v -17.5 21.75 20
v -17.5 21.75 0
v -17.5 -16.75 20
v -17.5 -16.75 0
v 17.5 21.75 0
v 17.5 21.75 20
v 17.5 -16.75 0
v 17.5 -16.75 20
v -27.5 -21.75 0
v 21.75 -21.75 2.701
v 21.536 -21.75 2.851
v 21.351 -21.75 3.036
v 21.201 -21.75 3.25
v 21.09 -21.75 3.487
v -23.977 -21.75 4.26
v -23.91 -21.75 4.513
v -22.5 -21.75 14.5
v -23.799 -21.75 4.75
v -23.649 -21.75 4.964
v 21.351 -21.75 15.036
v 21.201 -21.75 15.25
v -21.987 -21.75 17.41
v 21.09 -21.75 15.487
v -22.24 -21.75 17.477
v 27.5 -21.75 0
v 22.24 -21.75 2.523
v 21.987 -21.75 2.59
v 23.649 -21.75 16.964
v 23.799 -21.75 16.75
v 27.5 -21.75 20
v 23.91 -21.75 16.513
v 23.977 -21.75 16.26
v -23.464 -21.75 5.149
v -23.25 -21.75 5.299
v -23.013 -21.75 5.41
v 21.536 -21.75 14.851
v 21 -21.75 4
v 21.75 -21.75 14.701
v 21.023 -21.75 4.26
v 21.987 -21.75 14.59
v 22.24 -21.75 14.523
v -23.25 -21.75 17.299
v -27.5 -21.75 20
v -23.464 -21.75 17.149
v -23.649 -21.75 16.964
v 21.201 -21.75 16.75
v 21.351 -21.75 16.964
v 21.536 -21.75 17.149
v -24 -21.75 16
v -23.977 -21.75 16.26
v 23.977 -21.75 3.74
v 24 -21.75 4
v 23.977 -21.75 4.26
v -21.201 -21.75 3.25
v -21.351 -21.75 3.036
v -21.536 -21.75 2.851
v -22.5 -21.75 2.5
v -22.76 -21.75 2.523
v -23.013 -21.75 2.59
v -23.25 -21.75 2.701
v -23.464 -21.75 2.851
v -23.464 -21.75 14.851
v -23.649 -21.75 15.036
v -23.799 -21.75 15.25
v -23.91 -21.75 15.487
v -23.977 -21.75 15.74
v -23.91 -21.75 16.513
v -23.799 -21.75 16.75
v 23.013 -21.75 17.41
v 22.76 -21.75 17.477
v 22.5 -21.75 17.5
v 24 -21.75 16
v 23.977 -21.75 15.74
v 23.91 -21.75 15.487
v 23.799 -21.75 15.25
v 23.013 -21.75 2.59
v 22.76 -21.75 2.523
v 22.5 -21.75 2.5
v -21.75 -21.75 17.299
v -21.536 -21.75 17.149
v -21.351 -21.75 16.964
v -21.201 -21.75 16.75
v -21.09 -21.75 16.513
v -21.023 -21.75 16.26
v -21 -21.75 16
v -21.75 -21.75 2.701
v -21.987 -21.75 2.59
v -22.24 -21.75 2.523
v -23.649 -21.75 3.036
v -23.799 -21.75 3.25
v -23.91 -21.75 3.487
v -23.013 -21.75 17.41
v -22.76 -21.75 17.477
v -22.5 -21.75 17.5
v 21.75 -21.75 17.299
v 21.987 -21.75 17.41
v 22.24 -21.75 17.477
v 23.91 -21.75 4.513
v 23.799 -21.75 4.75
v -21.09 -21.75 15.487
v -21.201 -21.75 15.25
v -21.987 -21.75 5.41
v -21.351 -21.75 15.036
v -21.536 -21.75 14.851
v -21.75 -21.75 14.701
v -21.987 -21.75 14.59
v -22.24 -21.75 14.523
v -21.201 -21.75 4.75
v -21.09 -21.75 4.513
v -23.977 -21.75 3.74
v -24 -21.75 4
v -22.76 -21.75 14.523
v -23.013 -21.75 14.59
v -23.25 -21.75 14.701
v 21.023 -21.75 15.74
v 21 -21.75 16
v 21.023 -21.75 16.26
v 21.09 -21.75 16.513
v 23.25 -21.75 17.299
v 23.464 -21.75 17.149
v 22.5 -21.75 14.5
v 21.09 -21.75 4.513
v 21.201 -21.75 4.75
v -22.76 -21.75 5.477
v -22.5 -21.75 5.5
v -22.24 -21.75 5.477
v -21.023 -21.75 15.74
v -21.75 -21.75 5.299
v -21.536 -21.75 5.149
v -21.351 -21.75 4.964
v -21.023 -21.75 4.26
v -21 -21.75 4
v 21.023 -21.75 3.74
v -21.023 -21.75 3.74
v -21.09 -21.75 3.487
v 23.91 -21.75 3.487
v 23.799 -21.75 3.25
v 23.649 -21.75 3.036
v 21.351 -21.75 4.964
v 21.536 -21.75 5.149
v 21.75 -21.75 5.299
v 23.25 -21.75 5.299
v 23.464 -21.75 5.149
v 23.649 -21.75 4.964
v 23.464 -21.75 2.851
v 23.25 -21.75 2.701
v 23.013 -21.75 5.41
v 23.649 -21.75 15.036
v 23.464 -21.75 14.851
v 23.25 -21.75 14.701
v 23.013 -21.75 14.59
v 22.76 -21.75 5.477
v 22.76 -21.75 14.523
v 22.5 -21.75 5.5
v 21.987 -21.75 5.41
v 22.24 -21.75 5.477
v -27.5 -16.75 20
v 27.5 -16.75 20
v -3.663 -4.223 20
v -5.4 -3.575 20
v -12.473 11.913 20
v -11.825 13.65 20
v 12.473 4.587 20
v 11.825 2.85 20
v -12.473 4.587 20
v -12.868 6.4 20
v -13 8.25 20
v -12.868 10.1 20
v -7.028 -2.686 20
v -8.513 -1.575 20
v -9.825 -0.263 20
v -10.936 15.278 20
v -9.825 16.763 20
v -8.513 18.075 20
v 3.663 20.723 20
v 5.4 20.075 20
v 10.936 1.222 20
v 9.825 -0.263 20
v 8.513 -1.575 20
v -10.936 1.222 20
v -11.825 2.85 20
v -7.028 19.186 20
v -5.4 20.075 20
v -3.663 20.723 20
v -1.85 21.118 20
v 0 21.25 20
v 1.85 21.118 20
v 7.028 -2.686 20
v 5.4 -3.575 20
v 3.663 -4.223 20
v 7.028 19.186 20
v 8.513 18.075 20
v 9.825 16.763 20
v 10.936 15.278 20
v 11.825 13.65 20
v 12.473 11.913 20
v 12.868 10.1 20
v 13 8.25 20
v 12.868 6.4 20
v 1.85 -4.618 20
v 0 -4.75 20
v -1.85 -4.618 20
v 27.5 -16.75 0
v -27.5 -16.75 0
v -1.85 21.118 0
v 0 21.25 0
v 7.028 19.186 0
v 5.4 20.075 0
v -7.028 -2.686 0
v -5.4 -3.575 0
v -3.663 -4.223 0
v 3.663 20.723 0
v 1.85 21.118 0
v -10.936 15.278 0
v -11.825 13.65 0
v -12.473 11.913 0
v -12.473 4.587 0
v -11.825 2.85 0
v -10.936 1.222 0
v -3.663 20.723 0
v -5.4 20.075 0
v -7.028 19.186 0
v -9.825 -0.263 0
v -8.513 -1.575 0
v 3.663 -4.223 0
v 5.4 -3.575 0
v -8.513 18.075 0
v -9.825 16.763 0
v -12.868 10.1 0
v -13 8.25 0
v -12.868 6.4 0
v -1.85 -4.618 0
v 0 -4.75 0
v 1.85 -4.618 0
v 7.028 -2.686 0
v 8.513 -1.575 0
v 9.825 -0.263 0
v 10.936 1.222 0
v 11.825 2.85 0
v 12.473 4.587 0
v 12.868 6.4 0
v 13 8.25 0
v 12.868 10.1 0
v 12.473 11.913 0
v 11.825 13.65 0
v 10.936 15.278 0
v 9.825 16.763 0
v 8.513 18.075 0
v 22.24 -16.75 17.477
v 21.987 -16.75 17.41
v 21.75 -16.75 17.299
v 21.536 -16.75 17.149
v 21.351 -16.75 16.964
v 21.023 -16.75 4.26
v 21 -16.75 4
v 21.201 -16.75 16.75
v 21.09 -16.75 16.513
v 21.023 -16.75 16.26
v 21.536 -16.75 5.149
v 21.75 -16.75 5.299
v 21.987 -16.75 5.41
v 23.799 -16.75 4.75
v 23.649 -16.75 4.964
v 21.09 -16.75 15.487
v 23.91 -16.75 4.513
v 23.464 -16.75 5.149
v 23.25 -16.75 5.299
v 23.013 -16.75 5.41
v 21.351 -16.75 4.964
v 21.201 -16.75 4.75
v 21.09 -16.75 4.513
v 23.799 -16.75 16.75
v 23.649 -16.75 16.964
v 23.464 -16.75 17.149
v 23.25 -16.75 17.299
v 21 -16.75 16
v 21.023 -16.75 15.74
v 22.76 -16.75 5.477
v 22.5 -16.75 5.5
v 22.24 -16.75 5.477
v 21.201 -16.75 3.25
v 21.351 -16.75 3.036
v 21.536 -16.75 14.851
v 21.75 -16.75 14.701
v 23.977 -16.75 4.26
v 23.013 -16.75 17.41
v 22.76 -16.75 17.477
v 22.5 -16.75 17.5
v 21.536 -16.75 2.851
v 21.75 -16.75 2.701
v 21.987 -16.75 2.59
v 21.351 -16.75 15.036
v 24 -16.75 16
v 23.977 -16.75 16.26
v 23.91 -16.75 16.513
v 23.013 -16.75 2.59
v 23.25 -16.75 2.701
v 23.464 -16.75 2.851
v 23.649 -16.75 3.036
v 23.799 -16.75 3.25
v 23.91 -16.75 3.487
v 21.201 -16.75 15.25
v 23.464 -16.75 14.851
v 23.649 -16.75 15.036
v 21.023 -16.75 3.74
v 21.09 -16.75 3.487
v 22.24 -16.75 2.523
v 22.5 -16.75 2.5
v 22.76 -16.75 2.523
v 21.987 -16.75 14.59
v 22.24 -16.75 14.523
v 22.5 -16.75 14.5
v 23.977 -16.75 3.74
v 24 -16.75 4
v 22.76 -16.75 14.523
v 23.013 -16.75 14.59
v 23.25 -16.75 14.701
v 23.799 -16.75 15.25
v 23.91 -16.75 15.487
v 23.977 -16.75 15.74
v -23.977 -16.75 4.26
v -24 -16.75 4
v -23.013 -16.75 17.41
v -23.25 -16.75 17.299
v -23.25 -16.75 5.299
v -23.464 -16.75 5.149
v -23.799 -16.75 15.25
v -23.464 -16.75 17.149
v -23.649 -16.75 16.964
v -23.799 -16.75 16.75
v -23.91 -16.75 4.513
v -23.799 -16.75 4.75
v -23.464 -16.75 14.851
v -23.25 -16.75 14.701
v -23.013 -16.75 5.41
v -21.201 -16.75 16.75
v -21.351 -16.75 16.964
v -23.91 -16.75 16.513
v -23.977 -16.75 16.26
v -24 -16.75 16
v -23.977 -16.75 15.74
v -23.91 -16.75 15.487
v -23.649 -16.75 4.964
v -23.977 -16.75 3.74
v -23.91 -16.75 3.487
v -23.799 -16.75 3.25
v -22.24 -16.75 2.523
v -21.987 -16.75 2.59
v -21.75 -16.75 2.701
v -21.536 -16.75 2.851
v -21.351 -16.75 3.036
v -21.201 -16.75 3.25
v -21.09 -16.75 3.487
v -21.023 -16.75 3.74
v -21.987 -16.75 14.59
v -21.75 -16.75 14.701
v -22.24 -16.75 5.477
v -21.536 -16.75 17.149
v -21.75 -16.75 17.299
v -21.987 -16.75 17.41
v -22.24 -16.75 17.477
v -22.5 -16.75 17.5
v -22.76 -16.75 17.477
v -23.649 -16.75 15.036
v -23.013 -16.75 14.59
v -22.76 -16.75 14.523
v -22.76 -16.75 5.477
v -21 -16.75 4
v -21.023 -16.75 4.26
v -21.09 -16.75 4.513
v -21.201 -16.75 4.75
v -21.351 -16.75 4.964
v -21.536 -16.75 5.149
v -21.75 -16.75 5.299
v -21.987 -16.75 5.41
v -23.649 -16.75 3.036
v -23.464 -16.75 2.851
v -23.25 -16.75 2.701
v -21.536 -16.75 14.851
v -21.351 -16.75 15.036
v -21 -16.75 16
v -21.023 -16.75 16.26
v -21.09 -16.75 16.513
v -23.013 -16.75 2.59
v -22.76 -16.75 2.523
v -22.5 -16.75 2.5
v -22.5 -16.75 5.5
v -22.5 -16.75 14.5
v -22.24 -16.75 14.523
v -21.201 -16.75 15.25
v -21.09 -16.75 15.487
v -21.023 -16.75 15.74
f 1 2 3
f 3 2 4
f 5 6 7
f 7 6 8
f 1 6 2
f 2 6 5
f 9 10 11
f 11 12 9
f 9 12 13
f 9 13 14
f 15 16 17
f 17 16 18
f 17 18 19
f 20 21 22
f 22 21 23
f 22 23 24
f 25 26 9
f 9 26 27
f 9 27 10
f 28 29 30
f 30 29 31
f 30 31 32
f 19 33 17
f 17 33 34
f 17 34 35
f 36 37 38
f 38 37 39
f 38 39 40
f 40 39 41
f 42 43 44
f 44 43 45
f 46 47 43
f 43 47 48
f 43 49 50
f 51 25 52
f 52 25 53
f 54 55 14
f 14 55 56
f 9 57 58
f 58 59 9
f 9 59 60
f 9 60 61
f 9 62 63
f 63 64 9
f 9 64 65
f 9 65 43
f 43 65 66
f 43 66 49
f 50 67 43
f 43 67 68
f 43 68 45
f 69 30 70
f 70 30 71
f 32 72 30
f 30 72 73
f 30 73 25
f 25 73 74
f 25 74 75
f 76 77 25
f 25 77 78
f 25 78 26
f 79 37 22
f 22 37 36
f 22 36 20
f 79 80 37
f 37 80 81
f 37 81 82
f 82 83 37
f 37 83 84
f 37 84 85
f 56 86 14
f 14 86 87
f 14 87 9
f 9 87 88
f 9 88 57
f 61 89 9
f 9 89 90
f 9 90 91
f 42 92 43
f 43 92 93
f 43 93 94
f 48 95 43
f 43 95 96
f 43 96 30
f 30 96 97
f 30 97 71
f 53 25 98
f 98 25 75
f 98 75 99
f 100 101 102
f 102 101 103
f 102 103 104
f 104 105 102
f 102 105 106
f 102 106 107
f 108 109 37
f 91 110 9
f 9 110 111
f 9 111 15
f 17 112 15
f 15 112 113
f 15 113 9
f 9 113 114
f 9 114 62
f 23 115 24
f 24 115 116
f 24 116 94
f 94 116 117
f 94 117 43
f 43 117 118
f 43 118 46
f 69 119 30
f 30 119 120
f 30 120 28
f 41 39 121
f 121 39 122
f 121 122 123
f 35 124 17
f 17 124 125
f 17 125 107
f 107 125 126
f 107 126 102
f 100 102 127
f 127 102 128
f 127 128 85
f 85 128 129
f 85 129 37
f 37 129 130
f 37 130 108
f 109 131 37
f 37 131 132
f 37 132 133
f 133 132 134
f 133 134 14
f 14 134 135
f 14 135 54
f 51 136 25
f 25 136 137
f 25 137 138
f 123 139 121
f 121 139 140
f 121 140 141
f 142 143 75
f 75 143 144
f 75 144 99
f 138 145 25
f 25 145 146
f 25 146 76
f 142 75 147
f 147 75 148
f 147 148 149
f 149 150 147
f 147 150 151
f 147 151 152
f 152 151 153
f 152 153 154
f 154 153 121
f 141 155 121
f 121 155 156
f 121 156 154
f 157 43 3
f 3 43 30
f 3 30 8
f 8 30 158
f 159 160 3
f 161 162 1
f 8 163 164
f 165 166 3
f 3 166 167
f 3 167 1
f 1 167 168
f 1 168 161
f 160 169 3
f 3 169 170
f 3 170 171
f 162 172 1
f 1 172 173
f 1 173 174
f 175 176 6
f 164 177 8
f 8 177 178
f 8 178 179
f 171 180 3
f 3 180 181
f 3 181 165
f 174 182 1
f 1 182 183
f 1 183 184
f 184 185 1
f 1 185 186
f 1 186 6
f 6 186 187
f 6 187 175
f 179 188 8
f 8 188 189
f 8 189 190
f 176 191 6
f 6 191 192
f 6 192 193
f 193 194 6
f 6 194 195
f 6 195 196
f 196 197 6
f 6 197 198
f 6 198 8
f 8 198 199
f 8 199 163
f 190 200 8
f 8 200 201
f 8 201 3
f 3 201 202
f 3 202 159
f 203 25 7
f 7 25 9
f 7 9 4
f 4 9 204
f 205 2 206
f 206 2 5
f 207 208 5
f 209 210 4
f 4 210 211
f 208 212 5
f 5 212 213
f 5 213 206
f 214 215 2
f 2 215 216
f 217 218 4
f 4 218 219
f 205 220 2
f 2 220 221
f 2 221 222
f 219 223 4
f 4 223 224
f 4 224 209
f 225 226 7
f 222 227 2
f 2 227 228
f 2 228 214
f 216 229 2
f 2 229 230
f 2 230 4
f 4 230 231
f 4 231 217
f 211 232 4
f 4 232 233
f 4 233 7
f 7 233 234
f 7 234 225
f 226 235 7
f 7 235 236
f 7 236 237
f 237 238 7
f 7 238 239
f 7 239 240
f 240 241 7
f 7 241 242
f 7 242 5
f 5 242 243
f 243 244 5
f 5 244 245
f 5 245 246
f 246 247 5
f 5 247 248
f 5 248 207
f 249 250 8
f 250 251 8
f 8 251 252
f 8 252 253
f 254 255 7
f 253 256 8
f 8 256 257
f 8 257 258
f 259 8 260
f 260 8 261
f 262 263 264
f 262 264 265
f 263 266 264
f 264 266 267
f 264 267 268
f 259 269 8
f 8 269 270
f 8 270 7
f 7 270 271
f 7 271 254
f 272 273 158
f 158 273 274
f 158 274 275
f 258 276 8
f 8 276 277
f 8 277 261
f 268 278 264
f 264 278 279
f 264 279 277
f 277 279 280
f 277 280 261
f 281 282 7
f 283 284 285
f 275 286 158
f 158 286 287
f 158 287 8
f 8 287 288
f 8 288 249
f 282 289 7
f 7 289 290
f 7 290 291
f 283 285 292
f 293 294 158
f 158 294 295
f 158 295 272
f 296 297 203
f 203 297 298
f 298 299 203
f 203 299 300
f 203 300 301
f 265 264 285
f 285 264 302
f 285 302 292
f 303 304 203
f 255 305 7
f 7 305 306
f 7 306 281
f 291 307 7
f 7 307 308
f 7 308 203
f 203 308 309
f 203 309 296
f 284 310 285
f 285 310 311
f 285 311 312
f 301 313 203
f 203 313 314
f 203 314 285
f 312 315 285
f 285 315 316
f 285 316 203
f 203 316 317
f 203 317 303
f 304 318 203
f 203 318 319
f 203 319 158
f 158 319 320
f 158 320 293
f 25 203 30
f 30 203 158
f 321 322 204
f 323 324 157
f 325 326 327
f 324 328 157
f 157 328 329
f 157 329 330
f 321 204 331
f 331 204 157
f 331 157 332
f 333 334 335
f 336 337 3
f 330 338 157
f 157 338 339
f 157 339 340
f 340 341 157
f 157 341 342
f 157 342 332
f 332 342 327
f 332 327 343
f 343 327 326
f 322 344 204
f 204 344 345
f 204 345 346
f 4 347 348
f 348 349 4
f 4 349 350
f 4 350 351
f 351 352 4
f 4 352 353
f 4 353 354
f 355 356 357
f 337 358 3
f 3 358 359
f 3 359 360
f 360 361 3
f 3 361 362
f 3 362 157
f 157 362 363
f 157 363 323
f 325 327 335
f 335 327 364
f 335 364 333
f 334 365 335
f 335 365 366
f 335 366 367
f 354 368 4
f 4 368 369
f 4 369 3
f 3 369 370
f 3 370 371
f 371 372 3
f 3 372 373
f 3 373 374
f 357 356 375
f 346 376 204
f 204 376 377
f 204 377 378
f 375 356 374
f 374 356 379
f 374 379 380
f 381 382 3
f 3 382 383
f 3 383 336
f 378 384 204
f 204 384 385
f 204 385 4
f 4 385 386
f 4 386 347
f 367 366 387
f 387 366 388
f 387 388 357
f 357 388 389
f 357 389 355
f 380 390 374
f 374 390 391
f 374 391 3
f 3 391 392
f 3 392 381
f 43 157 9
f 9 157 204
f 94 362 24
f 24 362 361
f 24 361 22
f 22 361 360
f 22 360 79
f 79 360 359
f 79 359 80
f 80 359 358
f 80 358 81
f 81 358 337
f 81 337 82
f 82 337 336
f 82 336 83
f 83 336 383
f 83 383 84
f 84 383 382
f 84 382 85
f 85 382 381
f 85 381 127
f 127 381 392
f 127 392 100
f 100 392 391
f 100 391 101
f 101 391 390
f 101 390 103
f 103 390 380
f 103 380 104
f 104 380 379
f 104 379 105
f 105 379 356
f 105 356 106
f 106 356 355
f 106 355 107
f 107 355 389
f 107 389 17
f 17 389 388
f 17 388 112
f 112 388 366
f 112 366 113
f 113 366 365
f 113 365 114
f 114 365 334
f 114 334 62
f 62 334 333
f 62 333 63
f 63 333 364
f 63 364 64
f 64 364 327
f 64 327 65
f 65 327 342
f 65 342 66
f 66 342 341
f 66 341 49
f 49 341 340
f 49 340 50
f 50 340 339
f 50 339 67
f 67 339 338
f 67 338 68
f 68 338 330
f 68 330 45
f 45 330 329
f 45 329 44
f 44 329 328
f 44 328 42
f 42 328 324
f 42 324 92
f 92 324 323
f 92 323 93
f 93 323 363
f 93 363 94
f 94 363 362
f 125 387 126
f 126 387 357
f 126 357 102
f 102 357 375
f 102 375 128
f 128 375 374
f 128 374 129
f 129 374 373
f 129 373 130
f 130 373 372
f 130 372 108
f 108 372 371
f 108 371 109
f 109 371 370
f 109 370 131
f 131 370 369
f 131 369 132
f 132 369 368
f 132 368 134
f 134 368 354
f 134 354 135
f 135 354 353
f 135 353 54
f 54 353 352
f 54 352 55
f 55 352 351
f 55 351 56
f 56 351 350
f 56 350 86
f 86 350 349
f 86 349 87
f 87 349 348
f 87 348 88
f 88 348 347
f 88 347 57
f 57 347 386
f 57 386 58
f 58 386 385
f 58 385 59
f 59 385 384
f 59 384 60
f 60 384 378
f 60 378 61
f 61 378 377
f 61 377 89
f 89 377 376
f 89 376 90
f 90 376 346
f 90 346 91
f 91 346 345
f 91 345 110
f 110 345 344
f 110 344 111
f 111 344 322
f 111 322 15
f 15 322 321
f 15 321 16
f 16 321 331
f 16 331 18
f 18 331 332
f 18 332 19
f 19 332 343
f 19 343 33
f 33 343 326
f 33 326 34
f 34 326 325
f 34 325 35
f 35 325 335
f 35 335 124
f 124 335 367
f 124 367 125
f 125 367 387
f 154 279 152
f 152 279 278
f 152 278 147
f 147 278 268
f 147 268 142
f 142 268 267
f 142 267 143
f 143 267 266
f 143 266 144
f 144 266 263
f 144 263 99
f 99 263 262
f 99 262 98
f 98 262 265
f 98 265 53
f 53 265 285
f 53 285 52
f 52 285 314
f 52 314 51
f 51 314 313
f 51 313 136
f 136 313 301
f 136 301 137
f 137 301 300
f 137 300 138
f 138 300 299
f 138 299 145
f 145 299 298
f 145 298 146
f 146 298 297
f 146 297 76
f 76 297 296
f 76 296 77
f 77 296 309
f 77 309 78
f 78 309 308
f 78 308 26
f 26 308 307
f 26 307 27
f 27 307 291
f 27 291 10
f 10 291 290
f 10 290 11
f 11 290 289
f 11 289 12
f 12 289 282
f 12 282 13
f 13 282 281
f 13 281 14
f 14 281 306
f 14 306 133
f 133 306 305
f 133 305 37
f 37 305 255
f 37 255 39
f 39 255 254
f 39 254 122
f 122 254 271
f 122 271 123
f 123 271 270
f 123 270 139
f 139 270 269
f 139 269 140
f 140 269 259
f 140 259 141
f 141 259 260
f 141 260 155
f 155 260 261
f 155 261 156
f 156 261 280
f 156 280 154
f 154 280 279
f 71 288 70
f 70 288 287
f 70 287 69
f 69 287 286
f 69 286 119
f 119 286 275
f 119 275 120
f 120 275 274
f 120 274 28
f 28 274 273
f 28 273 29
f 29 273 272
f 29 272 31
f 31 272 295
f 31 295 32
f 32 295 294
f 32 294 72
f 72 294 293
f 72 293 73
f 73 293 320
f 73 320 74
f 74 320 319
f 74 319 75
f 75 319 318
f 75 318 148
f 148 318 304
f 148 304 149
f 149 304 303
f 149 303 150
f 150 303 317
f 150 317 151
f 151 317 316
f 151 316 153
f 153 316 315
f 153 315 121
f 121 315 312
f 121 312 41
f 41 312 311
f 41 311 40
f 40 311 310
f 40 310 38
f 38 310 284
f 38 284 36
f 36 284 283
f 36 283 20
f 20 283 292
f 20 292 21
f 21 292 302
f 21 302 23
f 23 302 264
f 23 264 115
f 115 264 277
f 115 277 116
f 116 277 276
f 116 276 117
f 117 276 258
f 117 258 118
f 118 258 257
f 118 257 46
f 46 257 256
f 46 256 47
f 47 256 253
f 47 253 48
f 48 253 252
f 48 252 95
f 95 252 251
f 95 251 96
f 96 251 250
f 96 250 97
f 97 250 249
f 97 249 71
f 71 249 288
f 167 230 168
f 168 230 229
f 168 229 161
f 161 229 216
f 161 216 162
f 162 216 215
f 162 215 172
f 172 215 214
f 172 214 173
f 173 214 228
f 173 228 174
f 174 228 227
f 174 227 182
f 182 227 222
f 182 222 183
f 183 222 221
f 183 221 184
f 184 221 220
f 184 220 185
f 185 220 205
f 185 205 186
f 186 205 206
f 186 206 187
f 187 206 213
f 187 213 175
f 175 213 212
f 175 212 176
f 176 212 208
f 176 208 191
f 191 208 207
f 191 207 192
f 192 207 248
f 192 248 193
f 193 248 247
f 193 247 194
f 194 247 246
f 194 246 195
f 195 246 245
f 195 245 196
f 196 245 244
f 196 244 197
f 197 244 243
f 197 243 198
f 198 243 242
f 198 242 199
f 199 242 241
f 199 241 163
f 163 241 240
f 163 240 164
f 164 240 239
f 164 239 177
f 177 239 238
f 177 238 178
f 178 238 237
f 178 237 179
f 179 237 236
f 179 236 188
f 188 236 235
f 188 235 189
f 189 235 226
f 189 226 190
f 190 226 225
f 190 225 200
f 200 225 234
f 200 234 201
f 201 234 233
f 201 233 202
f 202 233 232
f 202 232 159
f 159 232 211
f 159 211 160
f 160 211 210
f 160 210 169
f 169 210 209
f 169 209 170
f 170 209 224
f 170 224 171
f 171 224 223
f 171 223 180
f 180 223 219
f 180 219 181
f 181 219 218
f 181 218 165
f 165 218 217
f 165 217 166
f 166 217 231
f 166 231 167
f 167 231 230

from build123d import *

# Parameters (mm, degrees)
SKETCH_1_W          = 35
SKETCH_1_H          = 43.5
EXTRUDE_1_DEPTH     = 20
SKETCH_2_W          = 20
SKETCH_2_H          = 5
EXTRUDE_2_DEPTH     = 10
SKETCH_3_W          = 20
SKETCH_3_H          = 5
EXTRUDE_3_DEPTH     = 10
SKETCH_4_R          = 1.5
CUT_EXTRUDE_2_DEPTH = 5
SKETCH_5_R          = 13
CUT_EXTRUDE_3_DEPTH = 20


with BuildPart() as part:
    # Эскиз1 → Бобышка-Вытянуть1 (new body)
    with BuildSketch(Plane.XY):
        Rectangle(SKETCH_1_W, SKETCH_1_H)
    extrude(amount=EXTRUDE_1_DEPTH)

    # Эскиз2 → Бобышка-Вытянуть2 (add)
    with BuildSketch(Plane(origin=(17.5, 0, 0), x_dir=(0, 0, -1), z_dir=(1, 0, 0))):
        with Locations((-10, -19.25)):
            Rectangle(SKETCH_2_W, SKETCH_2_H)
    extrude(amount=EXTRUDE_2_DEPTH)

    # Эскиз3 → Бобышка-Вытянуть3 (add)
    with BuildSketch(Plane.ZY.offset(17.5)):
        with Locations((10, -19.25)):
            Rectangle(SKETCH_3_W, SKETCH_3_H)
    extrude(amount=EXTRUDE_3_DEPTH)

    # Эскиз4 → Вырез-Вытянуть2 (cut)
    with BuildSketch(Plane(origin=(0, -16.75, 0), x_dir=(1, 0, 0), z_dir=(0, 1, 0))):
        with Locations((-22.5, -16)):
            Circle(SKETCH_4_R)
        with Locations((-22.5, -4)):
            Circle(SKETCH_4_R)
        with Locations((22.5, -16)):
            Circle(SKETCH_4_R)
        with Locations((22.5, -4)):
            Circle(SKETCH_4_R)
    extrude(amount=-CUT_EXTRUDE_2_DEPTH, mode=Mode.SUBTRACT)

    # Эскиз5 → Вырез-Вытянуть3 (cut)
    with BuildSketch(Plane(origin=(0, 0, 0), x_dir=(-1, 0, 0), z_dir=(0, 0, -1))):
        with Locations((0, 8.25)):
            Circle(SKETCH_5_R)
    extrude(amount=-CUT_EXTRUDE_3_DEPTH, mode=Mode.SUBTRACT)


solid = part.part
